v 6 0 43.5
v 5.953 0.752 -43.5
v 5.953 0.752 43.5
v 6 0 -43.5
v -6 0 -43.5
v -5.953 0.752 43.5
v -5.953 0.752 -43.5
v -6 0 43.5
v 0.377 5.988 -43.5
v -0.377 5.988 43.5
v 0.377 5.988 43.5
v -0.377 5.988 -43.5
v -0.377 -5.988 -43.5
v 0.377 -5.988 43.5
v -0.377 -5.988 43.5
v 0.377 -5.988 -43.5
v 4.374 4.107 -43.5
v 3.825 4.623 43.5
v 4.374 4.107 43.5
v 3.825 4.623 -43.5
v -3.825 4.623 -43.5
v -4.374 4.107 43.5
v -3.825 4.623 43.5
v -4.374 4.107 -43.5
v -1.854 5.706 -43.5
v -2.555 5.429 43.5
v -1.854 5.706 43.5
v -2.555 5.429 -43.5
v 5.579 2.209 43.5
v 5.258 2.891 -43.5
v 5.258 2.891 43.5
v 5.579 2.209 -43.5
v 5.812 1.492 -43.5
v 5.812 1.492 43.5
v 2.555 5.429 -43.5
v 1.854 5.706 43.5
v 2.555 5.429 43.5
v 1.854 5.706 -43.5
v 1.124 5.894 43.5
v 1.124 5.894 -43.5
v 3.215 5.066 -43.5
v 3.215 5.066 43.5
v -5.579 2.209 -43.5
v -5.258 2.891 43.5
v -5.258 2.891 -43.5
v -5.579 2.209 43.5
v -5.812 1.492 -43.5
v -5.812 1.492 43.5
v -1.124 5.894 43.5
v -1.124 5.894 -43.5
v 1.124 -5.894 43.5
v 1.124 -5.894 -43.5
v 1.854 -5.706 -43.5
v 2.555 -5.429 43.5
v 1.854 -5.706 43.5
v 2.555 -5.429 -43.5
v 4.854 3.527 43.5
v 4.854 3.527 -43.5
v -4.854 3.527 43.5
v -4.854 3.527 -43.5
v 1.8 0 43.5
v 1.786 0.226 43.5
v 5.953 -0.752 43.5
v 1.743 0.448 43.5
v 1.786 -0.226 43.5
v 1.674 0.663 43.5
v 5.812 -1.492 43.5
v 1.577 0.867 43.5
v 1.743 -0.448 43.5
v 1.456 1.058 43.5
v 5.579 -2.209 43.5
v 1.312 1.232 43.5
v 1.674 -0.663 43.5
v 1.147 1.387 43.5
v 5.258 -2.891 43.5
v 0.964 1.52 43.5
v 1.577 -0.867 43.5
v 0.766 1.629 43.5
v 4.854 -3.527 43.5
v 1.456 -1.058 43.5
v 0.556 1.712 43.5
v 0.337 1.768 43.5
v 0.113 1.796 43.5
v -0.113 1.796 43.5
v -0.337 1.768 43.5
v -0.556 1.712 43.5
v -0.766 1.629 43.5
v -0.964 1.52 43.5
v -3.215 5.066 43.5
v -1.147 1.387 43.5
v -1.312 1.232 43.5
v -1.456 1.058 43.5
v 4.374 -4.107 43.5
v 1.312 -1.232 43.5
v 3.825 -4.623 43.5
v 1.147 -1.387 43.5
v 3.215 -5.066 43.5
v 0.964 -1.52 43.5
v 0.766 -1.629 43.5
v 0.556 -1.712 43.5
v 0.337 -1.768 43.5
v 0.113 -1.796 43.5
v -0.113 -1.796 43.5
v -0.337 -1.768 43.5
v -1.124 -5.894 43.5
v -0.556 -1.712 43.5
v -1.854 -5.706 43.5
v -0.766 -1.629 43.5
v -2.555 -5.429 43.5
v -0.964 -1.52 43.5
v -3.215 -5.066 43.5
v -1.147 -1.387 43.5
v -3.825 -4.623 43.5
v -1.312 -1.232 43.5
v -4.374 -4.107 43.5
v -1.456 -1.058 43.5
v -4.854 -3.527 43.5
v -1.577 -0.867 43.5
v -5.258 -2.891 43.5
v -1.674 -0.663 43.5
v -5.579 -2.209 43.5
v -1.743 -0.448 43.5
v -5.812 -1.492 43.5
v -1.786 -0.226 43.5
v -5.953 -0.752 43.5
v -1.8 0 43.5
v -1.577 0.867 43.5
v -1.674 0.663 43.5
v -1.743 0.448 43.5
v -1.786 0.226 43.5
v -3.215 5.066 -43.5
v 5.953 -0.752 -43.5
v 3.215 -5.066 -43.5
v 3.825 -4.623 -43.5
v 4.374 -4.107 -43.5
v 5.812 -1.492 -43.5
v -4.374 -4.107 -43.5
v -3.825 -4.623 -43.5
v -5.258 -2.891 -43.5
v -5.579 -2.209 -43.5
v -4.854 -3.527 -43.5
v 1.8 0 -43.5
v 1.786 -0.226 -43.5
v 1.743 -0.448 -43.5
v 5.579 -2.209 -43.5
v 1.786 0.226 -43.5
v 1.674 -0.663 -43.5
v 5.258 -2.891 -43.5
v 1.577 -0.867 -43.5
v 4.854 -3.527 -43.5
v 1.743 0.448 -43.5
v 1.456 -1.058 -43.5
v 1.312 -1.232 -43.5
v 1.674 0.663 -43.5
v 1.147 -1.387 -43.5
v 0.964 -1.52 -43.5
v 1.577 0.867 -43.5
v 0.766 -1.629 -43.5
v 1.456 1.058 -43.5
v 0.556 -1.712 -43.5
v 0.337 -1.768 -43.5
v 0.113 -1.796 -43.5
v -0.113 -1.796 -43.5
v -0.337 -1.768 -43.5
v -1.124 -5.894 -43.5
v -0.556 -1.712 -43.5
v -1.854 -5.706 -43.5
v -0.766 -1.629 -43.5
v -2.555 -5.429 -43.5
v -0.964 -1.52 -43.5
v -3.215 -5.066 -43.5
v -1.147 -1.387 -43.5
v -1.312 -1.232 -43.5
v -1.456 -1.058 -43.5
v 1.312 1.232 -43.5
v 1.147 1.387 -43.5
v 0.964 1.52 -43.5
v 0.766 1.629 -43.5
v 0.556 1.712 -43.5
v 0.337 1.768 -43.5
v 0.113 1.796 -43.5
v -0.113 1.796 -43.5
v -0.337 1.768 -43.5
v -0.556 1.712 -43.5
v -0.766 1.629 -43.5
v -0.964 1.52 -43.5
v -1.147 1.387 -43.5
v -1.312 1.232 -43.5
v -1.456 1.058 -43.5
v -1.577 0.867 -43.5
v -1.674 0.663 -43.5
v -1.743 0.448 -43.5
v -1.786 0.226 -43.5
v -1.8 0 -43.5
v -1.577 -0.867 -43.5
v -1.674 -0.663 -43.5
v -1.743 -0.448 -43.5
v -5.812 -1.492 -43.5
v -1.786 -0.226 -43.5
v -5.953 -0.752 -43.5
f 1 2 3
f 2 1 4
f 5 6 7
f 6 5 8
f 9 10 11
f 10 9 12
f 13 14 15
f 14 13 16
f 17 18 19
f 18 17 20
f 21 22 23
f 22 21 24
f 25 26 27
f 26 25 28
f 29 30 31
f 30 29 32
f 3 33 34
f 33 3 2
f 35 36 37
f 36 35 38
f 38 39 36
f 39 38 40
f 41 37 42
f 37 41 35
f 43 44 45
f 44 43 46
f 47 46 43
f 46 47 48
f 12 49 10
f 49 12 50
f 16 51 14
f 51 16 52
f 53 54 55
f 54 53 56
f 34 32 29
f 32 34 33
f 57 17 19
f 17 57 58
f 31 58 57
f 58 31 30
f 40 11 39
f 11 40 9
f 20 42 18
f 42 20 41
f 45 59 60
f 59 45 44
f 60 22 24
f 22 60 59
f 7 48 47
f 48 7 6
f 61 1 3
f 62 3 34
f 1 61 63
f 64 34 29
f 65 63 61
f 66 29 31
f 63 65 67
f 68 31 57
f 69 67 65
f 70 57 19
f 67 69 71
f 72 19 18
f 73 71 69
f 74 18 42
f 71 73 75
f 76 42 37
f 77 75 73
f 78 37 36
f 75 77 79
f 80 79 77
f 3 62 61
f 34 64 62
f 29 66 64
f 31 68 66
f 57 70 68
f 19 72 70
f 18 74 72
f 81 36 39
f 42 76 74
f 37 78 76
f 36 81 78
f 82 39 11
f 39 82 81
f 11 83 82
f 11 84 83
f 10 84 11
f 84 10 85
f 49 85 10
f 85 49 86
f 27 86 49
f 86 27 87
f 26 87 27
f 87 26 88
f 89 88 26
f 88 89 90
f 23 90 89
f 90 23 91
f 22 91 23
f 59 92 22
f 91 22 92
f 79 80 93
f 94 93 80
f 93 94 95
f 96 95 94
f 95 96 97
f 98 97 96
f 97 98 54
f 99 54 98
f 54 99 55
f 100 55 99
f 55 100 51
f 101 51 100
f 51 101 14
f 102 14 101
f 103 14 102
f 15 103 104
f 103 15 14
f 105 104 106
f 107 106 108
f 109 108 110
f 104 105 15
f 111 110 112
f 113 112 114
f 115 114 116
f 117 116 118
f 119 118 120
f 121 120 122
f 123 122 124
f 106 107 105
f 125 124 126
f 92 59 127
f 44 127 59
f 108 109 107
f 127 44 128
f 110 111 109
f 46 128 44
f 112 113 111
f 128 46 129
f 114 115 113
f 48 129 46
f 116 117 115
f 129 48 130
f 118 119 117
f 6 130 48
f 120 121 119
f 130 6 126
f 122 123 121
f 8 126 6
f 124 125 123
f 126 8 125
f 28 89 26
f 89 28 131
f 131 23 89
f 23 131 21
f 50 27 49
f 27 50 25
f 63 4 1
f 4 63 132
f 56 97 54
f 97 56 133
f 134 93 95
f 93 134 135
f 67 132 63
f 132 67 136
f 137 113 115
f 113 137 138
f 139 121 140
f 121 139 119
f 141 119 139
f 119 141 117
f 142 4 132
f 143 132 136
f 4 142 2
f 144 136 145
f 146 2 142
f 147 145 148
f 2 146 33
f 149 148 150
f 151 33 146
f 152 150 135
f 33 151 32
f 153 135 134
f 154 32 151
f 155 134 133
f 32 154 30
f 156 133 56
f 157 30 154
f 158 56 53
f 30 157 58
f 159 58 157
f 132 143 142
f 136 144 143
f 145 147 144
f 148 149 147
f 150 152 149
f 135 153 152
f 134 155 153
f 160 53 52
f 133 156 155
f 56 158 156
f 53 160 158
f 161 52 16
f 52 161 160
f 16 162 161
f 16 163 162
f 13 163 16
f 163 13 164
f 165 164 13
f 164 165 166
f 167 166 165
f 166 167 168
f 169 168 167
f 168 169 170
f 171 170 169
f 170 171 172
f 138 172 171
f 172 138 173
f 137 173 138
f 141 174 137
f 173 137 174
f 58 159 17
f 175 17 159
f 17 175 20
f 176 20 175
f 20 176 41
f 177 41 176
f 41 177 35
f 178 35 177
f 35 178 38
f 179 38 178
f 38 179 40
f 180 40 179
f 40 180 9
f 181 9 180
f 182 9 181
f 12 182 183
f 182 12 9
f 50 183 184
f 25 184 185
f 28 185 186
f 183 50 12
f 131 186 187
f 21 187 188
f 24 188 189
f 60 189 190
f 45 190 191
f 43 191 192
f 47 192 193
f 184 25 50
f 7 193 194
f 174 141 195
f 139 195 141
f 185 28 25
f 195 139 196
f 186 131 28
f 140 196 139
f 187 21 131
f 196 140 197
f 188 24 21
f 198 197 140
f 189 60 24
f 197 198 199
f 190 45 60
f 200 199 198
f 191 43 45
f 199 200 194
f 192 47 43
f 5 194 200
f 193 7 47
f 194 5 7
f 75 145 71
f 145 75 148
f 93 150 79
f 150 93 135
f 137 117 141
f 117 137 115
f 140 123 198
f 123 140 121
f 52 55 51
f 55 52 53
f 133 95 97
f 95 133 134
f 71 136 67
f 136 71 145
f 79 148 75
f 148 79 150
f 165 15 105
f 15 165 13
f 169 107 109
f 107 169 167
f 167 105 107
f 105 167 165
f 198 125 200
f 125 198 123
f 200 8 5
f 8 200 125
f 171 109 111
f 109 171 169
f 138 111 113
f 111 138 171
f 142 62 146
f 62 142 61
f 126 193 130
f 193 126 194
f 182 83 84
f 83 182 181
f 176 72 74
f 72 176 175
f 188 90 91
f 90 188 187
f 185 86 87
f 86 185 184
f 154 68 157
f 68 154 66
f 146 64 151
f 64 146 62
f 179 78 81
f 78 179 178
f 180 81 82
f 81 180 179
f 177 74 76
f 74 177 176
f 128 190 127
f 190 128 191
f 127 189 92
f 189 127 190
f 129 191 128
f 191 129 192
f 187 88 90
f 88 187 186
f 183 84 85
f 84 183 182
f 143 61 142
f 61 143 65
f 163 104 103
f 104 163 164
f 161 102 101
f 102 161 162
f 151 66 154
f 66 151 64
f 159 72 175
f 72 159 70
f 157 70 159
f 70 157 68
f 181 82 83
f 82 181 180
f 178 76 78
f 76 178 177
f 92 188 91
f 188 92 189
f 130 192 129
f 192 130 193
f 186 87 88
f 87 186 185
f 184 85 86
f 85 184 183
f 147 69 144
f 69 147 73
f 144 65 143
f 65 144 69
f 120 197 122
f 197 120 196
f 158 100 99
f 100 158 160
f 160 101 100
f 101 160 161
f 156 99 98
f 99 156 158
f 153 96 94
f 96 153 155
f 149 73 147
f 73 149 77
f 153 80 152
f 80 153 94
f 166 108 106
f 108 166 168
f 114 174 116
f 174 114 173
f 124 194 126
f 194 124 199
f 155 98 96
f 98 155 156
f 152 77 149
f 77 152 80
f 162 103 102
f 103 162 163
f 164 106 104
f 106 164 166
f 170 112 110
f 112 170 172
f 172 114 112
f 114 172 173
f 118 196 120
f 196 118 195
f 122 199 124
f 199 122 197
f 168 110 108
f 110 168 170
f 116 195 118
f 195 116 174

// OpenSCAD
$fn = 50;


difference() {
	union() {
		translate(v = [0, 0, -43.5000000000]) {
			cylinder(h = 87, r = 6.0000000000);
		}
	}
	union() {
		translate(v = [0, 0, -100.0000000000]) {
			cylinder(h = 200, r = 1.8000000000);
		}
	}
}
